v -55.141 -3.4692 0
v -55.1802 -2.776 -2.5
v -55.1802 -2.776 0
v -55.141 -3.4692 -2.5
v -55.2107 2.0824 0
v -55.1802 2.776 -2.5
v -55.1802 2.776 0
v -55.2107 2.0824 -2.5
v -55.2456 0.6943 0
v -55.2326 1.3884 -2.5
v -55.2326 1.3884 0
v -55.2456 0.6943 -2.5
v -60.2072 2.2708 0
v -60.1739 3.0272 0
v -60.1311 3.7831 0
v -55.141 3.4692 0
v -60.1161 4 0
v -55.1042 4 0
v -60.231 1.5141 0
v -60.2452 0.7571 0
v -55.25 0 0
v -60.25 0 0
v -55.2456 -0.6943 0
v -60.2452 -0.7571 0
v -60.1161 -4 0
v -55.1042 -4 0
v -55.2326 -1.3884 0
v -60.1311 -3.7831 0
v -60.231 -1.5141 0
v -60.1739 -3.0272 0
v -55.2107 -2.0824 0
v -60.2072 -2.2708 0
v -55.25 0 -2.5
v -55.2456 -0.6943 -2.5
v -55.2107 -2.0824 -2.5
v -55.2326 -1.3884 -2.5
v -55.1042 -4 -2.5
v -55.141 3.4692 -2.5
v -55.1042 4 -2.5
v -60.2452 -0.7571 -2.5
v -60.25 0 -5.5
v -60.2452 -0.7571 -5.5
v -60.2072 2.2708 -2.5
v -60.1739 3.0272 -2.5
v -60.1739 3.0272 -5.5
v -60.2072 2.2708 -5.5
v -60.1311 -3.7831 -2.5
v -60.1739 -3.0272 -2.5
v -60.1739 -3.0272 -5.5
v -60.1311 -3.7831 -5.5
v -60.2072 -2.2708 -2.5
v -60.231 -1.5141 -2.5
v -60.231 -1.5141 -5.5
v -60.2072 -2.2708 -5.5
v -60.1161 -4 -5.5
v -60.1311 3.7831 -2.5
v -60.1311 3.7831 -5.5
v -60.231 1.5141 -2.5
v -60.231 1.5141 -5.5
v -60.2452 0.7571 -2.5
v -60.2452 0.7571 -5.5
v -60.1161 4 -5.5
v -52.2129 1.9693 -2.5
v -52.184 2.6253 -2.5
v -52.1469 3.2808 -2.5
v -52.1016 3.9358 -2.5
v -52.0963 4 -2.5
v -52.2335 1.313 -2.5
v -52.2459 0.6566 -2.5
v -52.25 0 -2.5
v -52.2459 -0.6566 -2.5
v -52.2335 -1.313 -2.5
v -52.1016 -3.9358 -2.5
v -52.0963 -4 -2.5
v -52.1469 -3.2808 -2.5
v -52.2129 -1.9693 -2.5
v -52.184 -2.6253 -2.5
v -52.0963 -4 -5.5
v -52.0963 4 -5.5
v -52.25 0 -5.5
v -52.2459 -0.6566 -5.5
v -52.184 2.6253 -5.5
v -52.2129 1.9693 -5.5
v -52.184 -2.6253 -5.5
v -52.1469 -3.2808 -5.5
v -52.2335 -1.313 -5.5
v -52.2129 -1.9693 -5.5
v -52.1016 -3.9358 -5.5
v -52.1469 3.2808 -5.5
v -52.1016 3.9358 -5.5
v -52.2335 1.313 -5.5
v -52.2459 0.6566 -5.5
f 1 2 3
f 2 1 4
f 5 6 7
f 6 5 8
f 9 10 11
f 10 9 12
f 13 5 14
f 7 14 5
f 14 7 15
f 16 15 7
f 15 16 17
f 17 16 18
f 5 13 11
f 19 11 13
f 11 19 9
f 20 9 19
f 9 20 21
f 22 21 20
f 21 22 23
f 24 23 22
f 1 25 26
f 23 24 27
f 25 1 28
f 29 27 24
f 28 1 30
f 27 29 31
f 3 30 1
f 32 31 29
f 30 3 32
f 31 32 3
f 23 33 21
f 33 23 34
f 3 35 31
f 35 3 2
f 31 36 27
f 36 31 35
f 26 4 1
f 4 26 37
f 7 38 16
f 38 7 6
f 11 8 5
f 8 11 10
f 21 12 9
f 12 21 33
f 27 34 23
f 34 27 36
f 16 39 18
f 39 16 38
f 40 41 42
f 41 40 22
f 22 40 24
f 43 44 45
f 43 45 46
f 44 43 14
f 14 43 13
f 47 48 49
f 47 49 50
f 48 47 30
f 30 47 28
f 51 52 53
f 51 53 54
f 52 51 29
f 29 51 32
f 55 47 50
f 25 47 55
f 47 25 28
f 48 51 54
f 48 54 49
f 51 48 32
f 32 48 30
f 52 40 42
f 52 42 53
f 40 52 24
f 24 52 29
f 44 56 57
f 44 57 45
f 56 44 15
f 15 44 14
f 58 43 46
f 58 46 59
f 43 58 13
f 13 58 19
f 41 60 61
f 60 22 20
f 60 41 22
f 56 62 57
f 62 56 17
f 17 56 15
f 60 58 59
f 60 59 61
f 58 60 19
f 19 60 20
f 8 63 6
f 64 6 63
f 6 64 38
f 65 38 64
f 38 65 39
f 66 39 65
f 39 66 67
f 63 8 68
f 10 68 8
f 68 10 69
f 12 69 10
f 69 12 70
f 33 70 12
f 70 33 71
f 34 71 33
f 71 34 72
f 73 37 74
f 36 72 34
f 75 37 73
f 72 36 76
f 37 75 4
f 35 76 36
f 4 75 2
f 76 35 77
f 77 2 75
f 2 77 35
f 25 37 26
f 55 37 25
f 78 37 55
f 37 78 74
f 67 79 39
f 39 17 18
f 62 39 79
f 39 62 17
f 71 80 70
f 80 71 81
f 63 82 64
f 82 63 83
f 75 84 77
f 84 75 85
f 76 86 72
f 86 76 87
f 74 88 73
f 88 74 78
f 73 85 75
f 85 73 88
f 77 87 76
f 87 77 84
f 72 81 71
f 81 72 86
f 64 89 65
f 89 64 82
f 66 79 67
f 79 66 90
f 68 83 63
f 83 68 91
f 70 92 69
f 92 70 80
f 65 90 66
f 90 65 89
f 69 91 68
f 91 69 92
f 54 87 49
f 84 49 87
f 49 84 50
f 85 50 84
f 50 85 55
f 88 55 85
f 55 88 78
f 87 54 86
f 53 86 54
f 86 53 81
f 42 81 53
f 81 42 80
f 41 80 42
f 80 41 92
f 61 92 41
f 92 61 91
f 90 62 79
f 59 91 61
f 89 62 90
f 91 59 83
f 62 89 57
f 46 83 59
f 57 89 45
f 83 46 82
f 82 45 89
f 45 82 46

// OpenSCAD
// file: arc.scad
module arc(radius, thick, angle){
	intersection(){
		union(){
			rights = floor(angle/90);
			remain = angle-rights*90;
			if(angle > 90){
				for(i = [0:rights-1]){
					rotate(i*90-(rights-1)*90/2){
						polygon([[0, 0], [radius+thick, (radius+thick)*tan(90/2)], [radius+thick, -(radius+thick)*tan(90/2)]]);
					}
				}
				rotate(-(rights)*90/2)
					polygon([[0, 0], [radius+thick, 0], [radius+thick, -(radius+thick)*tan(remain/2)]]);
				rotate((rights)*90/2)
					polygon([[0, 0], [radius+thick, (radius+thick)*tan(remain/2)], [radius+thick, 0]]);
			}else{
				polygon([[0, 0], [radius+thick, (radius+thick)*tan(angle/2)], [radius+thick, -(radius+thick)*tan(angle/2)]]);
			}
		}
		difference(){
			circle(radius+thick);
			circle(radius);
		}
	}
}
// file: params.scad
$fn=500;
h_ext=9;
ep_fond=2;
ep_bords=2;
debord_fond=3;
d_int=75.5;
larg_led=10;
d_ext=d_int + ep_bords * 2 + larg_led  * 2 + ep_bords * 2;

ep_clip=5;
larg_clip=8;    


long_alim=28;
larg_alim=14;
// long_alim=14;
// larg_alim=28;
// main file
include <params.scad>
include <arc.scad>

ep_support=3;
d_aimant=15;
ep_aimant=1.5;

d_clips = d_ext + debord_fond * 2 + 1;
d_support = d_clips + ep_clip * 2;


module ring_cone(di_l, di_h, do, h) {
    difference() {
	cylinder(d = do, h = h);
	translate([ 0, 0, -1 ]) cylinder(d1 = di_l, d2 = di_h, h = h+2);
    }
}

module ring(di, do, h) {
	ring_cone(di, di, do, h);
}

module crochet() {
	difference () {
	    translate([-(d_support / 2),-larg_clip/2,0]) cube([ep_clip + 5,larg_clip,ep_fond+0.5]);
	    ring(d_int, d_clips, ep_fond + 1);
	    ring(d_support, d_support + 5, ep_fond + 1);
	};
	difference() {
	    translate([-(d_support / 2),-larg_clip/2, ep_fond+0.5]) cube([ep_clip + debord_fond + 5,larg_clip,ep_support]);
	    ring(d_int, d_ext + 1, ep_support + ep_fond + 1);
	    ring(d_support, d_support + 5, ep_support + ep_fond + 1);
	};
}

module all() {
	rotate([180,0,0]) crochet();
}

all() ;
//projection(cut=true) translate([0,0, -1]) all();
//projection(cut=true) translate([0,0, -(ep_support+1)]) all();
//projection(cut=true) translate([0,0, -(ep_support+ep_fond+1)]) all();
